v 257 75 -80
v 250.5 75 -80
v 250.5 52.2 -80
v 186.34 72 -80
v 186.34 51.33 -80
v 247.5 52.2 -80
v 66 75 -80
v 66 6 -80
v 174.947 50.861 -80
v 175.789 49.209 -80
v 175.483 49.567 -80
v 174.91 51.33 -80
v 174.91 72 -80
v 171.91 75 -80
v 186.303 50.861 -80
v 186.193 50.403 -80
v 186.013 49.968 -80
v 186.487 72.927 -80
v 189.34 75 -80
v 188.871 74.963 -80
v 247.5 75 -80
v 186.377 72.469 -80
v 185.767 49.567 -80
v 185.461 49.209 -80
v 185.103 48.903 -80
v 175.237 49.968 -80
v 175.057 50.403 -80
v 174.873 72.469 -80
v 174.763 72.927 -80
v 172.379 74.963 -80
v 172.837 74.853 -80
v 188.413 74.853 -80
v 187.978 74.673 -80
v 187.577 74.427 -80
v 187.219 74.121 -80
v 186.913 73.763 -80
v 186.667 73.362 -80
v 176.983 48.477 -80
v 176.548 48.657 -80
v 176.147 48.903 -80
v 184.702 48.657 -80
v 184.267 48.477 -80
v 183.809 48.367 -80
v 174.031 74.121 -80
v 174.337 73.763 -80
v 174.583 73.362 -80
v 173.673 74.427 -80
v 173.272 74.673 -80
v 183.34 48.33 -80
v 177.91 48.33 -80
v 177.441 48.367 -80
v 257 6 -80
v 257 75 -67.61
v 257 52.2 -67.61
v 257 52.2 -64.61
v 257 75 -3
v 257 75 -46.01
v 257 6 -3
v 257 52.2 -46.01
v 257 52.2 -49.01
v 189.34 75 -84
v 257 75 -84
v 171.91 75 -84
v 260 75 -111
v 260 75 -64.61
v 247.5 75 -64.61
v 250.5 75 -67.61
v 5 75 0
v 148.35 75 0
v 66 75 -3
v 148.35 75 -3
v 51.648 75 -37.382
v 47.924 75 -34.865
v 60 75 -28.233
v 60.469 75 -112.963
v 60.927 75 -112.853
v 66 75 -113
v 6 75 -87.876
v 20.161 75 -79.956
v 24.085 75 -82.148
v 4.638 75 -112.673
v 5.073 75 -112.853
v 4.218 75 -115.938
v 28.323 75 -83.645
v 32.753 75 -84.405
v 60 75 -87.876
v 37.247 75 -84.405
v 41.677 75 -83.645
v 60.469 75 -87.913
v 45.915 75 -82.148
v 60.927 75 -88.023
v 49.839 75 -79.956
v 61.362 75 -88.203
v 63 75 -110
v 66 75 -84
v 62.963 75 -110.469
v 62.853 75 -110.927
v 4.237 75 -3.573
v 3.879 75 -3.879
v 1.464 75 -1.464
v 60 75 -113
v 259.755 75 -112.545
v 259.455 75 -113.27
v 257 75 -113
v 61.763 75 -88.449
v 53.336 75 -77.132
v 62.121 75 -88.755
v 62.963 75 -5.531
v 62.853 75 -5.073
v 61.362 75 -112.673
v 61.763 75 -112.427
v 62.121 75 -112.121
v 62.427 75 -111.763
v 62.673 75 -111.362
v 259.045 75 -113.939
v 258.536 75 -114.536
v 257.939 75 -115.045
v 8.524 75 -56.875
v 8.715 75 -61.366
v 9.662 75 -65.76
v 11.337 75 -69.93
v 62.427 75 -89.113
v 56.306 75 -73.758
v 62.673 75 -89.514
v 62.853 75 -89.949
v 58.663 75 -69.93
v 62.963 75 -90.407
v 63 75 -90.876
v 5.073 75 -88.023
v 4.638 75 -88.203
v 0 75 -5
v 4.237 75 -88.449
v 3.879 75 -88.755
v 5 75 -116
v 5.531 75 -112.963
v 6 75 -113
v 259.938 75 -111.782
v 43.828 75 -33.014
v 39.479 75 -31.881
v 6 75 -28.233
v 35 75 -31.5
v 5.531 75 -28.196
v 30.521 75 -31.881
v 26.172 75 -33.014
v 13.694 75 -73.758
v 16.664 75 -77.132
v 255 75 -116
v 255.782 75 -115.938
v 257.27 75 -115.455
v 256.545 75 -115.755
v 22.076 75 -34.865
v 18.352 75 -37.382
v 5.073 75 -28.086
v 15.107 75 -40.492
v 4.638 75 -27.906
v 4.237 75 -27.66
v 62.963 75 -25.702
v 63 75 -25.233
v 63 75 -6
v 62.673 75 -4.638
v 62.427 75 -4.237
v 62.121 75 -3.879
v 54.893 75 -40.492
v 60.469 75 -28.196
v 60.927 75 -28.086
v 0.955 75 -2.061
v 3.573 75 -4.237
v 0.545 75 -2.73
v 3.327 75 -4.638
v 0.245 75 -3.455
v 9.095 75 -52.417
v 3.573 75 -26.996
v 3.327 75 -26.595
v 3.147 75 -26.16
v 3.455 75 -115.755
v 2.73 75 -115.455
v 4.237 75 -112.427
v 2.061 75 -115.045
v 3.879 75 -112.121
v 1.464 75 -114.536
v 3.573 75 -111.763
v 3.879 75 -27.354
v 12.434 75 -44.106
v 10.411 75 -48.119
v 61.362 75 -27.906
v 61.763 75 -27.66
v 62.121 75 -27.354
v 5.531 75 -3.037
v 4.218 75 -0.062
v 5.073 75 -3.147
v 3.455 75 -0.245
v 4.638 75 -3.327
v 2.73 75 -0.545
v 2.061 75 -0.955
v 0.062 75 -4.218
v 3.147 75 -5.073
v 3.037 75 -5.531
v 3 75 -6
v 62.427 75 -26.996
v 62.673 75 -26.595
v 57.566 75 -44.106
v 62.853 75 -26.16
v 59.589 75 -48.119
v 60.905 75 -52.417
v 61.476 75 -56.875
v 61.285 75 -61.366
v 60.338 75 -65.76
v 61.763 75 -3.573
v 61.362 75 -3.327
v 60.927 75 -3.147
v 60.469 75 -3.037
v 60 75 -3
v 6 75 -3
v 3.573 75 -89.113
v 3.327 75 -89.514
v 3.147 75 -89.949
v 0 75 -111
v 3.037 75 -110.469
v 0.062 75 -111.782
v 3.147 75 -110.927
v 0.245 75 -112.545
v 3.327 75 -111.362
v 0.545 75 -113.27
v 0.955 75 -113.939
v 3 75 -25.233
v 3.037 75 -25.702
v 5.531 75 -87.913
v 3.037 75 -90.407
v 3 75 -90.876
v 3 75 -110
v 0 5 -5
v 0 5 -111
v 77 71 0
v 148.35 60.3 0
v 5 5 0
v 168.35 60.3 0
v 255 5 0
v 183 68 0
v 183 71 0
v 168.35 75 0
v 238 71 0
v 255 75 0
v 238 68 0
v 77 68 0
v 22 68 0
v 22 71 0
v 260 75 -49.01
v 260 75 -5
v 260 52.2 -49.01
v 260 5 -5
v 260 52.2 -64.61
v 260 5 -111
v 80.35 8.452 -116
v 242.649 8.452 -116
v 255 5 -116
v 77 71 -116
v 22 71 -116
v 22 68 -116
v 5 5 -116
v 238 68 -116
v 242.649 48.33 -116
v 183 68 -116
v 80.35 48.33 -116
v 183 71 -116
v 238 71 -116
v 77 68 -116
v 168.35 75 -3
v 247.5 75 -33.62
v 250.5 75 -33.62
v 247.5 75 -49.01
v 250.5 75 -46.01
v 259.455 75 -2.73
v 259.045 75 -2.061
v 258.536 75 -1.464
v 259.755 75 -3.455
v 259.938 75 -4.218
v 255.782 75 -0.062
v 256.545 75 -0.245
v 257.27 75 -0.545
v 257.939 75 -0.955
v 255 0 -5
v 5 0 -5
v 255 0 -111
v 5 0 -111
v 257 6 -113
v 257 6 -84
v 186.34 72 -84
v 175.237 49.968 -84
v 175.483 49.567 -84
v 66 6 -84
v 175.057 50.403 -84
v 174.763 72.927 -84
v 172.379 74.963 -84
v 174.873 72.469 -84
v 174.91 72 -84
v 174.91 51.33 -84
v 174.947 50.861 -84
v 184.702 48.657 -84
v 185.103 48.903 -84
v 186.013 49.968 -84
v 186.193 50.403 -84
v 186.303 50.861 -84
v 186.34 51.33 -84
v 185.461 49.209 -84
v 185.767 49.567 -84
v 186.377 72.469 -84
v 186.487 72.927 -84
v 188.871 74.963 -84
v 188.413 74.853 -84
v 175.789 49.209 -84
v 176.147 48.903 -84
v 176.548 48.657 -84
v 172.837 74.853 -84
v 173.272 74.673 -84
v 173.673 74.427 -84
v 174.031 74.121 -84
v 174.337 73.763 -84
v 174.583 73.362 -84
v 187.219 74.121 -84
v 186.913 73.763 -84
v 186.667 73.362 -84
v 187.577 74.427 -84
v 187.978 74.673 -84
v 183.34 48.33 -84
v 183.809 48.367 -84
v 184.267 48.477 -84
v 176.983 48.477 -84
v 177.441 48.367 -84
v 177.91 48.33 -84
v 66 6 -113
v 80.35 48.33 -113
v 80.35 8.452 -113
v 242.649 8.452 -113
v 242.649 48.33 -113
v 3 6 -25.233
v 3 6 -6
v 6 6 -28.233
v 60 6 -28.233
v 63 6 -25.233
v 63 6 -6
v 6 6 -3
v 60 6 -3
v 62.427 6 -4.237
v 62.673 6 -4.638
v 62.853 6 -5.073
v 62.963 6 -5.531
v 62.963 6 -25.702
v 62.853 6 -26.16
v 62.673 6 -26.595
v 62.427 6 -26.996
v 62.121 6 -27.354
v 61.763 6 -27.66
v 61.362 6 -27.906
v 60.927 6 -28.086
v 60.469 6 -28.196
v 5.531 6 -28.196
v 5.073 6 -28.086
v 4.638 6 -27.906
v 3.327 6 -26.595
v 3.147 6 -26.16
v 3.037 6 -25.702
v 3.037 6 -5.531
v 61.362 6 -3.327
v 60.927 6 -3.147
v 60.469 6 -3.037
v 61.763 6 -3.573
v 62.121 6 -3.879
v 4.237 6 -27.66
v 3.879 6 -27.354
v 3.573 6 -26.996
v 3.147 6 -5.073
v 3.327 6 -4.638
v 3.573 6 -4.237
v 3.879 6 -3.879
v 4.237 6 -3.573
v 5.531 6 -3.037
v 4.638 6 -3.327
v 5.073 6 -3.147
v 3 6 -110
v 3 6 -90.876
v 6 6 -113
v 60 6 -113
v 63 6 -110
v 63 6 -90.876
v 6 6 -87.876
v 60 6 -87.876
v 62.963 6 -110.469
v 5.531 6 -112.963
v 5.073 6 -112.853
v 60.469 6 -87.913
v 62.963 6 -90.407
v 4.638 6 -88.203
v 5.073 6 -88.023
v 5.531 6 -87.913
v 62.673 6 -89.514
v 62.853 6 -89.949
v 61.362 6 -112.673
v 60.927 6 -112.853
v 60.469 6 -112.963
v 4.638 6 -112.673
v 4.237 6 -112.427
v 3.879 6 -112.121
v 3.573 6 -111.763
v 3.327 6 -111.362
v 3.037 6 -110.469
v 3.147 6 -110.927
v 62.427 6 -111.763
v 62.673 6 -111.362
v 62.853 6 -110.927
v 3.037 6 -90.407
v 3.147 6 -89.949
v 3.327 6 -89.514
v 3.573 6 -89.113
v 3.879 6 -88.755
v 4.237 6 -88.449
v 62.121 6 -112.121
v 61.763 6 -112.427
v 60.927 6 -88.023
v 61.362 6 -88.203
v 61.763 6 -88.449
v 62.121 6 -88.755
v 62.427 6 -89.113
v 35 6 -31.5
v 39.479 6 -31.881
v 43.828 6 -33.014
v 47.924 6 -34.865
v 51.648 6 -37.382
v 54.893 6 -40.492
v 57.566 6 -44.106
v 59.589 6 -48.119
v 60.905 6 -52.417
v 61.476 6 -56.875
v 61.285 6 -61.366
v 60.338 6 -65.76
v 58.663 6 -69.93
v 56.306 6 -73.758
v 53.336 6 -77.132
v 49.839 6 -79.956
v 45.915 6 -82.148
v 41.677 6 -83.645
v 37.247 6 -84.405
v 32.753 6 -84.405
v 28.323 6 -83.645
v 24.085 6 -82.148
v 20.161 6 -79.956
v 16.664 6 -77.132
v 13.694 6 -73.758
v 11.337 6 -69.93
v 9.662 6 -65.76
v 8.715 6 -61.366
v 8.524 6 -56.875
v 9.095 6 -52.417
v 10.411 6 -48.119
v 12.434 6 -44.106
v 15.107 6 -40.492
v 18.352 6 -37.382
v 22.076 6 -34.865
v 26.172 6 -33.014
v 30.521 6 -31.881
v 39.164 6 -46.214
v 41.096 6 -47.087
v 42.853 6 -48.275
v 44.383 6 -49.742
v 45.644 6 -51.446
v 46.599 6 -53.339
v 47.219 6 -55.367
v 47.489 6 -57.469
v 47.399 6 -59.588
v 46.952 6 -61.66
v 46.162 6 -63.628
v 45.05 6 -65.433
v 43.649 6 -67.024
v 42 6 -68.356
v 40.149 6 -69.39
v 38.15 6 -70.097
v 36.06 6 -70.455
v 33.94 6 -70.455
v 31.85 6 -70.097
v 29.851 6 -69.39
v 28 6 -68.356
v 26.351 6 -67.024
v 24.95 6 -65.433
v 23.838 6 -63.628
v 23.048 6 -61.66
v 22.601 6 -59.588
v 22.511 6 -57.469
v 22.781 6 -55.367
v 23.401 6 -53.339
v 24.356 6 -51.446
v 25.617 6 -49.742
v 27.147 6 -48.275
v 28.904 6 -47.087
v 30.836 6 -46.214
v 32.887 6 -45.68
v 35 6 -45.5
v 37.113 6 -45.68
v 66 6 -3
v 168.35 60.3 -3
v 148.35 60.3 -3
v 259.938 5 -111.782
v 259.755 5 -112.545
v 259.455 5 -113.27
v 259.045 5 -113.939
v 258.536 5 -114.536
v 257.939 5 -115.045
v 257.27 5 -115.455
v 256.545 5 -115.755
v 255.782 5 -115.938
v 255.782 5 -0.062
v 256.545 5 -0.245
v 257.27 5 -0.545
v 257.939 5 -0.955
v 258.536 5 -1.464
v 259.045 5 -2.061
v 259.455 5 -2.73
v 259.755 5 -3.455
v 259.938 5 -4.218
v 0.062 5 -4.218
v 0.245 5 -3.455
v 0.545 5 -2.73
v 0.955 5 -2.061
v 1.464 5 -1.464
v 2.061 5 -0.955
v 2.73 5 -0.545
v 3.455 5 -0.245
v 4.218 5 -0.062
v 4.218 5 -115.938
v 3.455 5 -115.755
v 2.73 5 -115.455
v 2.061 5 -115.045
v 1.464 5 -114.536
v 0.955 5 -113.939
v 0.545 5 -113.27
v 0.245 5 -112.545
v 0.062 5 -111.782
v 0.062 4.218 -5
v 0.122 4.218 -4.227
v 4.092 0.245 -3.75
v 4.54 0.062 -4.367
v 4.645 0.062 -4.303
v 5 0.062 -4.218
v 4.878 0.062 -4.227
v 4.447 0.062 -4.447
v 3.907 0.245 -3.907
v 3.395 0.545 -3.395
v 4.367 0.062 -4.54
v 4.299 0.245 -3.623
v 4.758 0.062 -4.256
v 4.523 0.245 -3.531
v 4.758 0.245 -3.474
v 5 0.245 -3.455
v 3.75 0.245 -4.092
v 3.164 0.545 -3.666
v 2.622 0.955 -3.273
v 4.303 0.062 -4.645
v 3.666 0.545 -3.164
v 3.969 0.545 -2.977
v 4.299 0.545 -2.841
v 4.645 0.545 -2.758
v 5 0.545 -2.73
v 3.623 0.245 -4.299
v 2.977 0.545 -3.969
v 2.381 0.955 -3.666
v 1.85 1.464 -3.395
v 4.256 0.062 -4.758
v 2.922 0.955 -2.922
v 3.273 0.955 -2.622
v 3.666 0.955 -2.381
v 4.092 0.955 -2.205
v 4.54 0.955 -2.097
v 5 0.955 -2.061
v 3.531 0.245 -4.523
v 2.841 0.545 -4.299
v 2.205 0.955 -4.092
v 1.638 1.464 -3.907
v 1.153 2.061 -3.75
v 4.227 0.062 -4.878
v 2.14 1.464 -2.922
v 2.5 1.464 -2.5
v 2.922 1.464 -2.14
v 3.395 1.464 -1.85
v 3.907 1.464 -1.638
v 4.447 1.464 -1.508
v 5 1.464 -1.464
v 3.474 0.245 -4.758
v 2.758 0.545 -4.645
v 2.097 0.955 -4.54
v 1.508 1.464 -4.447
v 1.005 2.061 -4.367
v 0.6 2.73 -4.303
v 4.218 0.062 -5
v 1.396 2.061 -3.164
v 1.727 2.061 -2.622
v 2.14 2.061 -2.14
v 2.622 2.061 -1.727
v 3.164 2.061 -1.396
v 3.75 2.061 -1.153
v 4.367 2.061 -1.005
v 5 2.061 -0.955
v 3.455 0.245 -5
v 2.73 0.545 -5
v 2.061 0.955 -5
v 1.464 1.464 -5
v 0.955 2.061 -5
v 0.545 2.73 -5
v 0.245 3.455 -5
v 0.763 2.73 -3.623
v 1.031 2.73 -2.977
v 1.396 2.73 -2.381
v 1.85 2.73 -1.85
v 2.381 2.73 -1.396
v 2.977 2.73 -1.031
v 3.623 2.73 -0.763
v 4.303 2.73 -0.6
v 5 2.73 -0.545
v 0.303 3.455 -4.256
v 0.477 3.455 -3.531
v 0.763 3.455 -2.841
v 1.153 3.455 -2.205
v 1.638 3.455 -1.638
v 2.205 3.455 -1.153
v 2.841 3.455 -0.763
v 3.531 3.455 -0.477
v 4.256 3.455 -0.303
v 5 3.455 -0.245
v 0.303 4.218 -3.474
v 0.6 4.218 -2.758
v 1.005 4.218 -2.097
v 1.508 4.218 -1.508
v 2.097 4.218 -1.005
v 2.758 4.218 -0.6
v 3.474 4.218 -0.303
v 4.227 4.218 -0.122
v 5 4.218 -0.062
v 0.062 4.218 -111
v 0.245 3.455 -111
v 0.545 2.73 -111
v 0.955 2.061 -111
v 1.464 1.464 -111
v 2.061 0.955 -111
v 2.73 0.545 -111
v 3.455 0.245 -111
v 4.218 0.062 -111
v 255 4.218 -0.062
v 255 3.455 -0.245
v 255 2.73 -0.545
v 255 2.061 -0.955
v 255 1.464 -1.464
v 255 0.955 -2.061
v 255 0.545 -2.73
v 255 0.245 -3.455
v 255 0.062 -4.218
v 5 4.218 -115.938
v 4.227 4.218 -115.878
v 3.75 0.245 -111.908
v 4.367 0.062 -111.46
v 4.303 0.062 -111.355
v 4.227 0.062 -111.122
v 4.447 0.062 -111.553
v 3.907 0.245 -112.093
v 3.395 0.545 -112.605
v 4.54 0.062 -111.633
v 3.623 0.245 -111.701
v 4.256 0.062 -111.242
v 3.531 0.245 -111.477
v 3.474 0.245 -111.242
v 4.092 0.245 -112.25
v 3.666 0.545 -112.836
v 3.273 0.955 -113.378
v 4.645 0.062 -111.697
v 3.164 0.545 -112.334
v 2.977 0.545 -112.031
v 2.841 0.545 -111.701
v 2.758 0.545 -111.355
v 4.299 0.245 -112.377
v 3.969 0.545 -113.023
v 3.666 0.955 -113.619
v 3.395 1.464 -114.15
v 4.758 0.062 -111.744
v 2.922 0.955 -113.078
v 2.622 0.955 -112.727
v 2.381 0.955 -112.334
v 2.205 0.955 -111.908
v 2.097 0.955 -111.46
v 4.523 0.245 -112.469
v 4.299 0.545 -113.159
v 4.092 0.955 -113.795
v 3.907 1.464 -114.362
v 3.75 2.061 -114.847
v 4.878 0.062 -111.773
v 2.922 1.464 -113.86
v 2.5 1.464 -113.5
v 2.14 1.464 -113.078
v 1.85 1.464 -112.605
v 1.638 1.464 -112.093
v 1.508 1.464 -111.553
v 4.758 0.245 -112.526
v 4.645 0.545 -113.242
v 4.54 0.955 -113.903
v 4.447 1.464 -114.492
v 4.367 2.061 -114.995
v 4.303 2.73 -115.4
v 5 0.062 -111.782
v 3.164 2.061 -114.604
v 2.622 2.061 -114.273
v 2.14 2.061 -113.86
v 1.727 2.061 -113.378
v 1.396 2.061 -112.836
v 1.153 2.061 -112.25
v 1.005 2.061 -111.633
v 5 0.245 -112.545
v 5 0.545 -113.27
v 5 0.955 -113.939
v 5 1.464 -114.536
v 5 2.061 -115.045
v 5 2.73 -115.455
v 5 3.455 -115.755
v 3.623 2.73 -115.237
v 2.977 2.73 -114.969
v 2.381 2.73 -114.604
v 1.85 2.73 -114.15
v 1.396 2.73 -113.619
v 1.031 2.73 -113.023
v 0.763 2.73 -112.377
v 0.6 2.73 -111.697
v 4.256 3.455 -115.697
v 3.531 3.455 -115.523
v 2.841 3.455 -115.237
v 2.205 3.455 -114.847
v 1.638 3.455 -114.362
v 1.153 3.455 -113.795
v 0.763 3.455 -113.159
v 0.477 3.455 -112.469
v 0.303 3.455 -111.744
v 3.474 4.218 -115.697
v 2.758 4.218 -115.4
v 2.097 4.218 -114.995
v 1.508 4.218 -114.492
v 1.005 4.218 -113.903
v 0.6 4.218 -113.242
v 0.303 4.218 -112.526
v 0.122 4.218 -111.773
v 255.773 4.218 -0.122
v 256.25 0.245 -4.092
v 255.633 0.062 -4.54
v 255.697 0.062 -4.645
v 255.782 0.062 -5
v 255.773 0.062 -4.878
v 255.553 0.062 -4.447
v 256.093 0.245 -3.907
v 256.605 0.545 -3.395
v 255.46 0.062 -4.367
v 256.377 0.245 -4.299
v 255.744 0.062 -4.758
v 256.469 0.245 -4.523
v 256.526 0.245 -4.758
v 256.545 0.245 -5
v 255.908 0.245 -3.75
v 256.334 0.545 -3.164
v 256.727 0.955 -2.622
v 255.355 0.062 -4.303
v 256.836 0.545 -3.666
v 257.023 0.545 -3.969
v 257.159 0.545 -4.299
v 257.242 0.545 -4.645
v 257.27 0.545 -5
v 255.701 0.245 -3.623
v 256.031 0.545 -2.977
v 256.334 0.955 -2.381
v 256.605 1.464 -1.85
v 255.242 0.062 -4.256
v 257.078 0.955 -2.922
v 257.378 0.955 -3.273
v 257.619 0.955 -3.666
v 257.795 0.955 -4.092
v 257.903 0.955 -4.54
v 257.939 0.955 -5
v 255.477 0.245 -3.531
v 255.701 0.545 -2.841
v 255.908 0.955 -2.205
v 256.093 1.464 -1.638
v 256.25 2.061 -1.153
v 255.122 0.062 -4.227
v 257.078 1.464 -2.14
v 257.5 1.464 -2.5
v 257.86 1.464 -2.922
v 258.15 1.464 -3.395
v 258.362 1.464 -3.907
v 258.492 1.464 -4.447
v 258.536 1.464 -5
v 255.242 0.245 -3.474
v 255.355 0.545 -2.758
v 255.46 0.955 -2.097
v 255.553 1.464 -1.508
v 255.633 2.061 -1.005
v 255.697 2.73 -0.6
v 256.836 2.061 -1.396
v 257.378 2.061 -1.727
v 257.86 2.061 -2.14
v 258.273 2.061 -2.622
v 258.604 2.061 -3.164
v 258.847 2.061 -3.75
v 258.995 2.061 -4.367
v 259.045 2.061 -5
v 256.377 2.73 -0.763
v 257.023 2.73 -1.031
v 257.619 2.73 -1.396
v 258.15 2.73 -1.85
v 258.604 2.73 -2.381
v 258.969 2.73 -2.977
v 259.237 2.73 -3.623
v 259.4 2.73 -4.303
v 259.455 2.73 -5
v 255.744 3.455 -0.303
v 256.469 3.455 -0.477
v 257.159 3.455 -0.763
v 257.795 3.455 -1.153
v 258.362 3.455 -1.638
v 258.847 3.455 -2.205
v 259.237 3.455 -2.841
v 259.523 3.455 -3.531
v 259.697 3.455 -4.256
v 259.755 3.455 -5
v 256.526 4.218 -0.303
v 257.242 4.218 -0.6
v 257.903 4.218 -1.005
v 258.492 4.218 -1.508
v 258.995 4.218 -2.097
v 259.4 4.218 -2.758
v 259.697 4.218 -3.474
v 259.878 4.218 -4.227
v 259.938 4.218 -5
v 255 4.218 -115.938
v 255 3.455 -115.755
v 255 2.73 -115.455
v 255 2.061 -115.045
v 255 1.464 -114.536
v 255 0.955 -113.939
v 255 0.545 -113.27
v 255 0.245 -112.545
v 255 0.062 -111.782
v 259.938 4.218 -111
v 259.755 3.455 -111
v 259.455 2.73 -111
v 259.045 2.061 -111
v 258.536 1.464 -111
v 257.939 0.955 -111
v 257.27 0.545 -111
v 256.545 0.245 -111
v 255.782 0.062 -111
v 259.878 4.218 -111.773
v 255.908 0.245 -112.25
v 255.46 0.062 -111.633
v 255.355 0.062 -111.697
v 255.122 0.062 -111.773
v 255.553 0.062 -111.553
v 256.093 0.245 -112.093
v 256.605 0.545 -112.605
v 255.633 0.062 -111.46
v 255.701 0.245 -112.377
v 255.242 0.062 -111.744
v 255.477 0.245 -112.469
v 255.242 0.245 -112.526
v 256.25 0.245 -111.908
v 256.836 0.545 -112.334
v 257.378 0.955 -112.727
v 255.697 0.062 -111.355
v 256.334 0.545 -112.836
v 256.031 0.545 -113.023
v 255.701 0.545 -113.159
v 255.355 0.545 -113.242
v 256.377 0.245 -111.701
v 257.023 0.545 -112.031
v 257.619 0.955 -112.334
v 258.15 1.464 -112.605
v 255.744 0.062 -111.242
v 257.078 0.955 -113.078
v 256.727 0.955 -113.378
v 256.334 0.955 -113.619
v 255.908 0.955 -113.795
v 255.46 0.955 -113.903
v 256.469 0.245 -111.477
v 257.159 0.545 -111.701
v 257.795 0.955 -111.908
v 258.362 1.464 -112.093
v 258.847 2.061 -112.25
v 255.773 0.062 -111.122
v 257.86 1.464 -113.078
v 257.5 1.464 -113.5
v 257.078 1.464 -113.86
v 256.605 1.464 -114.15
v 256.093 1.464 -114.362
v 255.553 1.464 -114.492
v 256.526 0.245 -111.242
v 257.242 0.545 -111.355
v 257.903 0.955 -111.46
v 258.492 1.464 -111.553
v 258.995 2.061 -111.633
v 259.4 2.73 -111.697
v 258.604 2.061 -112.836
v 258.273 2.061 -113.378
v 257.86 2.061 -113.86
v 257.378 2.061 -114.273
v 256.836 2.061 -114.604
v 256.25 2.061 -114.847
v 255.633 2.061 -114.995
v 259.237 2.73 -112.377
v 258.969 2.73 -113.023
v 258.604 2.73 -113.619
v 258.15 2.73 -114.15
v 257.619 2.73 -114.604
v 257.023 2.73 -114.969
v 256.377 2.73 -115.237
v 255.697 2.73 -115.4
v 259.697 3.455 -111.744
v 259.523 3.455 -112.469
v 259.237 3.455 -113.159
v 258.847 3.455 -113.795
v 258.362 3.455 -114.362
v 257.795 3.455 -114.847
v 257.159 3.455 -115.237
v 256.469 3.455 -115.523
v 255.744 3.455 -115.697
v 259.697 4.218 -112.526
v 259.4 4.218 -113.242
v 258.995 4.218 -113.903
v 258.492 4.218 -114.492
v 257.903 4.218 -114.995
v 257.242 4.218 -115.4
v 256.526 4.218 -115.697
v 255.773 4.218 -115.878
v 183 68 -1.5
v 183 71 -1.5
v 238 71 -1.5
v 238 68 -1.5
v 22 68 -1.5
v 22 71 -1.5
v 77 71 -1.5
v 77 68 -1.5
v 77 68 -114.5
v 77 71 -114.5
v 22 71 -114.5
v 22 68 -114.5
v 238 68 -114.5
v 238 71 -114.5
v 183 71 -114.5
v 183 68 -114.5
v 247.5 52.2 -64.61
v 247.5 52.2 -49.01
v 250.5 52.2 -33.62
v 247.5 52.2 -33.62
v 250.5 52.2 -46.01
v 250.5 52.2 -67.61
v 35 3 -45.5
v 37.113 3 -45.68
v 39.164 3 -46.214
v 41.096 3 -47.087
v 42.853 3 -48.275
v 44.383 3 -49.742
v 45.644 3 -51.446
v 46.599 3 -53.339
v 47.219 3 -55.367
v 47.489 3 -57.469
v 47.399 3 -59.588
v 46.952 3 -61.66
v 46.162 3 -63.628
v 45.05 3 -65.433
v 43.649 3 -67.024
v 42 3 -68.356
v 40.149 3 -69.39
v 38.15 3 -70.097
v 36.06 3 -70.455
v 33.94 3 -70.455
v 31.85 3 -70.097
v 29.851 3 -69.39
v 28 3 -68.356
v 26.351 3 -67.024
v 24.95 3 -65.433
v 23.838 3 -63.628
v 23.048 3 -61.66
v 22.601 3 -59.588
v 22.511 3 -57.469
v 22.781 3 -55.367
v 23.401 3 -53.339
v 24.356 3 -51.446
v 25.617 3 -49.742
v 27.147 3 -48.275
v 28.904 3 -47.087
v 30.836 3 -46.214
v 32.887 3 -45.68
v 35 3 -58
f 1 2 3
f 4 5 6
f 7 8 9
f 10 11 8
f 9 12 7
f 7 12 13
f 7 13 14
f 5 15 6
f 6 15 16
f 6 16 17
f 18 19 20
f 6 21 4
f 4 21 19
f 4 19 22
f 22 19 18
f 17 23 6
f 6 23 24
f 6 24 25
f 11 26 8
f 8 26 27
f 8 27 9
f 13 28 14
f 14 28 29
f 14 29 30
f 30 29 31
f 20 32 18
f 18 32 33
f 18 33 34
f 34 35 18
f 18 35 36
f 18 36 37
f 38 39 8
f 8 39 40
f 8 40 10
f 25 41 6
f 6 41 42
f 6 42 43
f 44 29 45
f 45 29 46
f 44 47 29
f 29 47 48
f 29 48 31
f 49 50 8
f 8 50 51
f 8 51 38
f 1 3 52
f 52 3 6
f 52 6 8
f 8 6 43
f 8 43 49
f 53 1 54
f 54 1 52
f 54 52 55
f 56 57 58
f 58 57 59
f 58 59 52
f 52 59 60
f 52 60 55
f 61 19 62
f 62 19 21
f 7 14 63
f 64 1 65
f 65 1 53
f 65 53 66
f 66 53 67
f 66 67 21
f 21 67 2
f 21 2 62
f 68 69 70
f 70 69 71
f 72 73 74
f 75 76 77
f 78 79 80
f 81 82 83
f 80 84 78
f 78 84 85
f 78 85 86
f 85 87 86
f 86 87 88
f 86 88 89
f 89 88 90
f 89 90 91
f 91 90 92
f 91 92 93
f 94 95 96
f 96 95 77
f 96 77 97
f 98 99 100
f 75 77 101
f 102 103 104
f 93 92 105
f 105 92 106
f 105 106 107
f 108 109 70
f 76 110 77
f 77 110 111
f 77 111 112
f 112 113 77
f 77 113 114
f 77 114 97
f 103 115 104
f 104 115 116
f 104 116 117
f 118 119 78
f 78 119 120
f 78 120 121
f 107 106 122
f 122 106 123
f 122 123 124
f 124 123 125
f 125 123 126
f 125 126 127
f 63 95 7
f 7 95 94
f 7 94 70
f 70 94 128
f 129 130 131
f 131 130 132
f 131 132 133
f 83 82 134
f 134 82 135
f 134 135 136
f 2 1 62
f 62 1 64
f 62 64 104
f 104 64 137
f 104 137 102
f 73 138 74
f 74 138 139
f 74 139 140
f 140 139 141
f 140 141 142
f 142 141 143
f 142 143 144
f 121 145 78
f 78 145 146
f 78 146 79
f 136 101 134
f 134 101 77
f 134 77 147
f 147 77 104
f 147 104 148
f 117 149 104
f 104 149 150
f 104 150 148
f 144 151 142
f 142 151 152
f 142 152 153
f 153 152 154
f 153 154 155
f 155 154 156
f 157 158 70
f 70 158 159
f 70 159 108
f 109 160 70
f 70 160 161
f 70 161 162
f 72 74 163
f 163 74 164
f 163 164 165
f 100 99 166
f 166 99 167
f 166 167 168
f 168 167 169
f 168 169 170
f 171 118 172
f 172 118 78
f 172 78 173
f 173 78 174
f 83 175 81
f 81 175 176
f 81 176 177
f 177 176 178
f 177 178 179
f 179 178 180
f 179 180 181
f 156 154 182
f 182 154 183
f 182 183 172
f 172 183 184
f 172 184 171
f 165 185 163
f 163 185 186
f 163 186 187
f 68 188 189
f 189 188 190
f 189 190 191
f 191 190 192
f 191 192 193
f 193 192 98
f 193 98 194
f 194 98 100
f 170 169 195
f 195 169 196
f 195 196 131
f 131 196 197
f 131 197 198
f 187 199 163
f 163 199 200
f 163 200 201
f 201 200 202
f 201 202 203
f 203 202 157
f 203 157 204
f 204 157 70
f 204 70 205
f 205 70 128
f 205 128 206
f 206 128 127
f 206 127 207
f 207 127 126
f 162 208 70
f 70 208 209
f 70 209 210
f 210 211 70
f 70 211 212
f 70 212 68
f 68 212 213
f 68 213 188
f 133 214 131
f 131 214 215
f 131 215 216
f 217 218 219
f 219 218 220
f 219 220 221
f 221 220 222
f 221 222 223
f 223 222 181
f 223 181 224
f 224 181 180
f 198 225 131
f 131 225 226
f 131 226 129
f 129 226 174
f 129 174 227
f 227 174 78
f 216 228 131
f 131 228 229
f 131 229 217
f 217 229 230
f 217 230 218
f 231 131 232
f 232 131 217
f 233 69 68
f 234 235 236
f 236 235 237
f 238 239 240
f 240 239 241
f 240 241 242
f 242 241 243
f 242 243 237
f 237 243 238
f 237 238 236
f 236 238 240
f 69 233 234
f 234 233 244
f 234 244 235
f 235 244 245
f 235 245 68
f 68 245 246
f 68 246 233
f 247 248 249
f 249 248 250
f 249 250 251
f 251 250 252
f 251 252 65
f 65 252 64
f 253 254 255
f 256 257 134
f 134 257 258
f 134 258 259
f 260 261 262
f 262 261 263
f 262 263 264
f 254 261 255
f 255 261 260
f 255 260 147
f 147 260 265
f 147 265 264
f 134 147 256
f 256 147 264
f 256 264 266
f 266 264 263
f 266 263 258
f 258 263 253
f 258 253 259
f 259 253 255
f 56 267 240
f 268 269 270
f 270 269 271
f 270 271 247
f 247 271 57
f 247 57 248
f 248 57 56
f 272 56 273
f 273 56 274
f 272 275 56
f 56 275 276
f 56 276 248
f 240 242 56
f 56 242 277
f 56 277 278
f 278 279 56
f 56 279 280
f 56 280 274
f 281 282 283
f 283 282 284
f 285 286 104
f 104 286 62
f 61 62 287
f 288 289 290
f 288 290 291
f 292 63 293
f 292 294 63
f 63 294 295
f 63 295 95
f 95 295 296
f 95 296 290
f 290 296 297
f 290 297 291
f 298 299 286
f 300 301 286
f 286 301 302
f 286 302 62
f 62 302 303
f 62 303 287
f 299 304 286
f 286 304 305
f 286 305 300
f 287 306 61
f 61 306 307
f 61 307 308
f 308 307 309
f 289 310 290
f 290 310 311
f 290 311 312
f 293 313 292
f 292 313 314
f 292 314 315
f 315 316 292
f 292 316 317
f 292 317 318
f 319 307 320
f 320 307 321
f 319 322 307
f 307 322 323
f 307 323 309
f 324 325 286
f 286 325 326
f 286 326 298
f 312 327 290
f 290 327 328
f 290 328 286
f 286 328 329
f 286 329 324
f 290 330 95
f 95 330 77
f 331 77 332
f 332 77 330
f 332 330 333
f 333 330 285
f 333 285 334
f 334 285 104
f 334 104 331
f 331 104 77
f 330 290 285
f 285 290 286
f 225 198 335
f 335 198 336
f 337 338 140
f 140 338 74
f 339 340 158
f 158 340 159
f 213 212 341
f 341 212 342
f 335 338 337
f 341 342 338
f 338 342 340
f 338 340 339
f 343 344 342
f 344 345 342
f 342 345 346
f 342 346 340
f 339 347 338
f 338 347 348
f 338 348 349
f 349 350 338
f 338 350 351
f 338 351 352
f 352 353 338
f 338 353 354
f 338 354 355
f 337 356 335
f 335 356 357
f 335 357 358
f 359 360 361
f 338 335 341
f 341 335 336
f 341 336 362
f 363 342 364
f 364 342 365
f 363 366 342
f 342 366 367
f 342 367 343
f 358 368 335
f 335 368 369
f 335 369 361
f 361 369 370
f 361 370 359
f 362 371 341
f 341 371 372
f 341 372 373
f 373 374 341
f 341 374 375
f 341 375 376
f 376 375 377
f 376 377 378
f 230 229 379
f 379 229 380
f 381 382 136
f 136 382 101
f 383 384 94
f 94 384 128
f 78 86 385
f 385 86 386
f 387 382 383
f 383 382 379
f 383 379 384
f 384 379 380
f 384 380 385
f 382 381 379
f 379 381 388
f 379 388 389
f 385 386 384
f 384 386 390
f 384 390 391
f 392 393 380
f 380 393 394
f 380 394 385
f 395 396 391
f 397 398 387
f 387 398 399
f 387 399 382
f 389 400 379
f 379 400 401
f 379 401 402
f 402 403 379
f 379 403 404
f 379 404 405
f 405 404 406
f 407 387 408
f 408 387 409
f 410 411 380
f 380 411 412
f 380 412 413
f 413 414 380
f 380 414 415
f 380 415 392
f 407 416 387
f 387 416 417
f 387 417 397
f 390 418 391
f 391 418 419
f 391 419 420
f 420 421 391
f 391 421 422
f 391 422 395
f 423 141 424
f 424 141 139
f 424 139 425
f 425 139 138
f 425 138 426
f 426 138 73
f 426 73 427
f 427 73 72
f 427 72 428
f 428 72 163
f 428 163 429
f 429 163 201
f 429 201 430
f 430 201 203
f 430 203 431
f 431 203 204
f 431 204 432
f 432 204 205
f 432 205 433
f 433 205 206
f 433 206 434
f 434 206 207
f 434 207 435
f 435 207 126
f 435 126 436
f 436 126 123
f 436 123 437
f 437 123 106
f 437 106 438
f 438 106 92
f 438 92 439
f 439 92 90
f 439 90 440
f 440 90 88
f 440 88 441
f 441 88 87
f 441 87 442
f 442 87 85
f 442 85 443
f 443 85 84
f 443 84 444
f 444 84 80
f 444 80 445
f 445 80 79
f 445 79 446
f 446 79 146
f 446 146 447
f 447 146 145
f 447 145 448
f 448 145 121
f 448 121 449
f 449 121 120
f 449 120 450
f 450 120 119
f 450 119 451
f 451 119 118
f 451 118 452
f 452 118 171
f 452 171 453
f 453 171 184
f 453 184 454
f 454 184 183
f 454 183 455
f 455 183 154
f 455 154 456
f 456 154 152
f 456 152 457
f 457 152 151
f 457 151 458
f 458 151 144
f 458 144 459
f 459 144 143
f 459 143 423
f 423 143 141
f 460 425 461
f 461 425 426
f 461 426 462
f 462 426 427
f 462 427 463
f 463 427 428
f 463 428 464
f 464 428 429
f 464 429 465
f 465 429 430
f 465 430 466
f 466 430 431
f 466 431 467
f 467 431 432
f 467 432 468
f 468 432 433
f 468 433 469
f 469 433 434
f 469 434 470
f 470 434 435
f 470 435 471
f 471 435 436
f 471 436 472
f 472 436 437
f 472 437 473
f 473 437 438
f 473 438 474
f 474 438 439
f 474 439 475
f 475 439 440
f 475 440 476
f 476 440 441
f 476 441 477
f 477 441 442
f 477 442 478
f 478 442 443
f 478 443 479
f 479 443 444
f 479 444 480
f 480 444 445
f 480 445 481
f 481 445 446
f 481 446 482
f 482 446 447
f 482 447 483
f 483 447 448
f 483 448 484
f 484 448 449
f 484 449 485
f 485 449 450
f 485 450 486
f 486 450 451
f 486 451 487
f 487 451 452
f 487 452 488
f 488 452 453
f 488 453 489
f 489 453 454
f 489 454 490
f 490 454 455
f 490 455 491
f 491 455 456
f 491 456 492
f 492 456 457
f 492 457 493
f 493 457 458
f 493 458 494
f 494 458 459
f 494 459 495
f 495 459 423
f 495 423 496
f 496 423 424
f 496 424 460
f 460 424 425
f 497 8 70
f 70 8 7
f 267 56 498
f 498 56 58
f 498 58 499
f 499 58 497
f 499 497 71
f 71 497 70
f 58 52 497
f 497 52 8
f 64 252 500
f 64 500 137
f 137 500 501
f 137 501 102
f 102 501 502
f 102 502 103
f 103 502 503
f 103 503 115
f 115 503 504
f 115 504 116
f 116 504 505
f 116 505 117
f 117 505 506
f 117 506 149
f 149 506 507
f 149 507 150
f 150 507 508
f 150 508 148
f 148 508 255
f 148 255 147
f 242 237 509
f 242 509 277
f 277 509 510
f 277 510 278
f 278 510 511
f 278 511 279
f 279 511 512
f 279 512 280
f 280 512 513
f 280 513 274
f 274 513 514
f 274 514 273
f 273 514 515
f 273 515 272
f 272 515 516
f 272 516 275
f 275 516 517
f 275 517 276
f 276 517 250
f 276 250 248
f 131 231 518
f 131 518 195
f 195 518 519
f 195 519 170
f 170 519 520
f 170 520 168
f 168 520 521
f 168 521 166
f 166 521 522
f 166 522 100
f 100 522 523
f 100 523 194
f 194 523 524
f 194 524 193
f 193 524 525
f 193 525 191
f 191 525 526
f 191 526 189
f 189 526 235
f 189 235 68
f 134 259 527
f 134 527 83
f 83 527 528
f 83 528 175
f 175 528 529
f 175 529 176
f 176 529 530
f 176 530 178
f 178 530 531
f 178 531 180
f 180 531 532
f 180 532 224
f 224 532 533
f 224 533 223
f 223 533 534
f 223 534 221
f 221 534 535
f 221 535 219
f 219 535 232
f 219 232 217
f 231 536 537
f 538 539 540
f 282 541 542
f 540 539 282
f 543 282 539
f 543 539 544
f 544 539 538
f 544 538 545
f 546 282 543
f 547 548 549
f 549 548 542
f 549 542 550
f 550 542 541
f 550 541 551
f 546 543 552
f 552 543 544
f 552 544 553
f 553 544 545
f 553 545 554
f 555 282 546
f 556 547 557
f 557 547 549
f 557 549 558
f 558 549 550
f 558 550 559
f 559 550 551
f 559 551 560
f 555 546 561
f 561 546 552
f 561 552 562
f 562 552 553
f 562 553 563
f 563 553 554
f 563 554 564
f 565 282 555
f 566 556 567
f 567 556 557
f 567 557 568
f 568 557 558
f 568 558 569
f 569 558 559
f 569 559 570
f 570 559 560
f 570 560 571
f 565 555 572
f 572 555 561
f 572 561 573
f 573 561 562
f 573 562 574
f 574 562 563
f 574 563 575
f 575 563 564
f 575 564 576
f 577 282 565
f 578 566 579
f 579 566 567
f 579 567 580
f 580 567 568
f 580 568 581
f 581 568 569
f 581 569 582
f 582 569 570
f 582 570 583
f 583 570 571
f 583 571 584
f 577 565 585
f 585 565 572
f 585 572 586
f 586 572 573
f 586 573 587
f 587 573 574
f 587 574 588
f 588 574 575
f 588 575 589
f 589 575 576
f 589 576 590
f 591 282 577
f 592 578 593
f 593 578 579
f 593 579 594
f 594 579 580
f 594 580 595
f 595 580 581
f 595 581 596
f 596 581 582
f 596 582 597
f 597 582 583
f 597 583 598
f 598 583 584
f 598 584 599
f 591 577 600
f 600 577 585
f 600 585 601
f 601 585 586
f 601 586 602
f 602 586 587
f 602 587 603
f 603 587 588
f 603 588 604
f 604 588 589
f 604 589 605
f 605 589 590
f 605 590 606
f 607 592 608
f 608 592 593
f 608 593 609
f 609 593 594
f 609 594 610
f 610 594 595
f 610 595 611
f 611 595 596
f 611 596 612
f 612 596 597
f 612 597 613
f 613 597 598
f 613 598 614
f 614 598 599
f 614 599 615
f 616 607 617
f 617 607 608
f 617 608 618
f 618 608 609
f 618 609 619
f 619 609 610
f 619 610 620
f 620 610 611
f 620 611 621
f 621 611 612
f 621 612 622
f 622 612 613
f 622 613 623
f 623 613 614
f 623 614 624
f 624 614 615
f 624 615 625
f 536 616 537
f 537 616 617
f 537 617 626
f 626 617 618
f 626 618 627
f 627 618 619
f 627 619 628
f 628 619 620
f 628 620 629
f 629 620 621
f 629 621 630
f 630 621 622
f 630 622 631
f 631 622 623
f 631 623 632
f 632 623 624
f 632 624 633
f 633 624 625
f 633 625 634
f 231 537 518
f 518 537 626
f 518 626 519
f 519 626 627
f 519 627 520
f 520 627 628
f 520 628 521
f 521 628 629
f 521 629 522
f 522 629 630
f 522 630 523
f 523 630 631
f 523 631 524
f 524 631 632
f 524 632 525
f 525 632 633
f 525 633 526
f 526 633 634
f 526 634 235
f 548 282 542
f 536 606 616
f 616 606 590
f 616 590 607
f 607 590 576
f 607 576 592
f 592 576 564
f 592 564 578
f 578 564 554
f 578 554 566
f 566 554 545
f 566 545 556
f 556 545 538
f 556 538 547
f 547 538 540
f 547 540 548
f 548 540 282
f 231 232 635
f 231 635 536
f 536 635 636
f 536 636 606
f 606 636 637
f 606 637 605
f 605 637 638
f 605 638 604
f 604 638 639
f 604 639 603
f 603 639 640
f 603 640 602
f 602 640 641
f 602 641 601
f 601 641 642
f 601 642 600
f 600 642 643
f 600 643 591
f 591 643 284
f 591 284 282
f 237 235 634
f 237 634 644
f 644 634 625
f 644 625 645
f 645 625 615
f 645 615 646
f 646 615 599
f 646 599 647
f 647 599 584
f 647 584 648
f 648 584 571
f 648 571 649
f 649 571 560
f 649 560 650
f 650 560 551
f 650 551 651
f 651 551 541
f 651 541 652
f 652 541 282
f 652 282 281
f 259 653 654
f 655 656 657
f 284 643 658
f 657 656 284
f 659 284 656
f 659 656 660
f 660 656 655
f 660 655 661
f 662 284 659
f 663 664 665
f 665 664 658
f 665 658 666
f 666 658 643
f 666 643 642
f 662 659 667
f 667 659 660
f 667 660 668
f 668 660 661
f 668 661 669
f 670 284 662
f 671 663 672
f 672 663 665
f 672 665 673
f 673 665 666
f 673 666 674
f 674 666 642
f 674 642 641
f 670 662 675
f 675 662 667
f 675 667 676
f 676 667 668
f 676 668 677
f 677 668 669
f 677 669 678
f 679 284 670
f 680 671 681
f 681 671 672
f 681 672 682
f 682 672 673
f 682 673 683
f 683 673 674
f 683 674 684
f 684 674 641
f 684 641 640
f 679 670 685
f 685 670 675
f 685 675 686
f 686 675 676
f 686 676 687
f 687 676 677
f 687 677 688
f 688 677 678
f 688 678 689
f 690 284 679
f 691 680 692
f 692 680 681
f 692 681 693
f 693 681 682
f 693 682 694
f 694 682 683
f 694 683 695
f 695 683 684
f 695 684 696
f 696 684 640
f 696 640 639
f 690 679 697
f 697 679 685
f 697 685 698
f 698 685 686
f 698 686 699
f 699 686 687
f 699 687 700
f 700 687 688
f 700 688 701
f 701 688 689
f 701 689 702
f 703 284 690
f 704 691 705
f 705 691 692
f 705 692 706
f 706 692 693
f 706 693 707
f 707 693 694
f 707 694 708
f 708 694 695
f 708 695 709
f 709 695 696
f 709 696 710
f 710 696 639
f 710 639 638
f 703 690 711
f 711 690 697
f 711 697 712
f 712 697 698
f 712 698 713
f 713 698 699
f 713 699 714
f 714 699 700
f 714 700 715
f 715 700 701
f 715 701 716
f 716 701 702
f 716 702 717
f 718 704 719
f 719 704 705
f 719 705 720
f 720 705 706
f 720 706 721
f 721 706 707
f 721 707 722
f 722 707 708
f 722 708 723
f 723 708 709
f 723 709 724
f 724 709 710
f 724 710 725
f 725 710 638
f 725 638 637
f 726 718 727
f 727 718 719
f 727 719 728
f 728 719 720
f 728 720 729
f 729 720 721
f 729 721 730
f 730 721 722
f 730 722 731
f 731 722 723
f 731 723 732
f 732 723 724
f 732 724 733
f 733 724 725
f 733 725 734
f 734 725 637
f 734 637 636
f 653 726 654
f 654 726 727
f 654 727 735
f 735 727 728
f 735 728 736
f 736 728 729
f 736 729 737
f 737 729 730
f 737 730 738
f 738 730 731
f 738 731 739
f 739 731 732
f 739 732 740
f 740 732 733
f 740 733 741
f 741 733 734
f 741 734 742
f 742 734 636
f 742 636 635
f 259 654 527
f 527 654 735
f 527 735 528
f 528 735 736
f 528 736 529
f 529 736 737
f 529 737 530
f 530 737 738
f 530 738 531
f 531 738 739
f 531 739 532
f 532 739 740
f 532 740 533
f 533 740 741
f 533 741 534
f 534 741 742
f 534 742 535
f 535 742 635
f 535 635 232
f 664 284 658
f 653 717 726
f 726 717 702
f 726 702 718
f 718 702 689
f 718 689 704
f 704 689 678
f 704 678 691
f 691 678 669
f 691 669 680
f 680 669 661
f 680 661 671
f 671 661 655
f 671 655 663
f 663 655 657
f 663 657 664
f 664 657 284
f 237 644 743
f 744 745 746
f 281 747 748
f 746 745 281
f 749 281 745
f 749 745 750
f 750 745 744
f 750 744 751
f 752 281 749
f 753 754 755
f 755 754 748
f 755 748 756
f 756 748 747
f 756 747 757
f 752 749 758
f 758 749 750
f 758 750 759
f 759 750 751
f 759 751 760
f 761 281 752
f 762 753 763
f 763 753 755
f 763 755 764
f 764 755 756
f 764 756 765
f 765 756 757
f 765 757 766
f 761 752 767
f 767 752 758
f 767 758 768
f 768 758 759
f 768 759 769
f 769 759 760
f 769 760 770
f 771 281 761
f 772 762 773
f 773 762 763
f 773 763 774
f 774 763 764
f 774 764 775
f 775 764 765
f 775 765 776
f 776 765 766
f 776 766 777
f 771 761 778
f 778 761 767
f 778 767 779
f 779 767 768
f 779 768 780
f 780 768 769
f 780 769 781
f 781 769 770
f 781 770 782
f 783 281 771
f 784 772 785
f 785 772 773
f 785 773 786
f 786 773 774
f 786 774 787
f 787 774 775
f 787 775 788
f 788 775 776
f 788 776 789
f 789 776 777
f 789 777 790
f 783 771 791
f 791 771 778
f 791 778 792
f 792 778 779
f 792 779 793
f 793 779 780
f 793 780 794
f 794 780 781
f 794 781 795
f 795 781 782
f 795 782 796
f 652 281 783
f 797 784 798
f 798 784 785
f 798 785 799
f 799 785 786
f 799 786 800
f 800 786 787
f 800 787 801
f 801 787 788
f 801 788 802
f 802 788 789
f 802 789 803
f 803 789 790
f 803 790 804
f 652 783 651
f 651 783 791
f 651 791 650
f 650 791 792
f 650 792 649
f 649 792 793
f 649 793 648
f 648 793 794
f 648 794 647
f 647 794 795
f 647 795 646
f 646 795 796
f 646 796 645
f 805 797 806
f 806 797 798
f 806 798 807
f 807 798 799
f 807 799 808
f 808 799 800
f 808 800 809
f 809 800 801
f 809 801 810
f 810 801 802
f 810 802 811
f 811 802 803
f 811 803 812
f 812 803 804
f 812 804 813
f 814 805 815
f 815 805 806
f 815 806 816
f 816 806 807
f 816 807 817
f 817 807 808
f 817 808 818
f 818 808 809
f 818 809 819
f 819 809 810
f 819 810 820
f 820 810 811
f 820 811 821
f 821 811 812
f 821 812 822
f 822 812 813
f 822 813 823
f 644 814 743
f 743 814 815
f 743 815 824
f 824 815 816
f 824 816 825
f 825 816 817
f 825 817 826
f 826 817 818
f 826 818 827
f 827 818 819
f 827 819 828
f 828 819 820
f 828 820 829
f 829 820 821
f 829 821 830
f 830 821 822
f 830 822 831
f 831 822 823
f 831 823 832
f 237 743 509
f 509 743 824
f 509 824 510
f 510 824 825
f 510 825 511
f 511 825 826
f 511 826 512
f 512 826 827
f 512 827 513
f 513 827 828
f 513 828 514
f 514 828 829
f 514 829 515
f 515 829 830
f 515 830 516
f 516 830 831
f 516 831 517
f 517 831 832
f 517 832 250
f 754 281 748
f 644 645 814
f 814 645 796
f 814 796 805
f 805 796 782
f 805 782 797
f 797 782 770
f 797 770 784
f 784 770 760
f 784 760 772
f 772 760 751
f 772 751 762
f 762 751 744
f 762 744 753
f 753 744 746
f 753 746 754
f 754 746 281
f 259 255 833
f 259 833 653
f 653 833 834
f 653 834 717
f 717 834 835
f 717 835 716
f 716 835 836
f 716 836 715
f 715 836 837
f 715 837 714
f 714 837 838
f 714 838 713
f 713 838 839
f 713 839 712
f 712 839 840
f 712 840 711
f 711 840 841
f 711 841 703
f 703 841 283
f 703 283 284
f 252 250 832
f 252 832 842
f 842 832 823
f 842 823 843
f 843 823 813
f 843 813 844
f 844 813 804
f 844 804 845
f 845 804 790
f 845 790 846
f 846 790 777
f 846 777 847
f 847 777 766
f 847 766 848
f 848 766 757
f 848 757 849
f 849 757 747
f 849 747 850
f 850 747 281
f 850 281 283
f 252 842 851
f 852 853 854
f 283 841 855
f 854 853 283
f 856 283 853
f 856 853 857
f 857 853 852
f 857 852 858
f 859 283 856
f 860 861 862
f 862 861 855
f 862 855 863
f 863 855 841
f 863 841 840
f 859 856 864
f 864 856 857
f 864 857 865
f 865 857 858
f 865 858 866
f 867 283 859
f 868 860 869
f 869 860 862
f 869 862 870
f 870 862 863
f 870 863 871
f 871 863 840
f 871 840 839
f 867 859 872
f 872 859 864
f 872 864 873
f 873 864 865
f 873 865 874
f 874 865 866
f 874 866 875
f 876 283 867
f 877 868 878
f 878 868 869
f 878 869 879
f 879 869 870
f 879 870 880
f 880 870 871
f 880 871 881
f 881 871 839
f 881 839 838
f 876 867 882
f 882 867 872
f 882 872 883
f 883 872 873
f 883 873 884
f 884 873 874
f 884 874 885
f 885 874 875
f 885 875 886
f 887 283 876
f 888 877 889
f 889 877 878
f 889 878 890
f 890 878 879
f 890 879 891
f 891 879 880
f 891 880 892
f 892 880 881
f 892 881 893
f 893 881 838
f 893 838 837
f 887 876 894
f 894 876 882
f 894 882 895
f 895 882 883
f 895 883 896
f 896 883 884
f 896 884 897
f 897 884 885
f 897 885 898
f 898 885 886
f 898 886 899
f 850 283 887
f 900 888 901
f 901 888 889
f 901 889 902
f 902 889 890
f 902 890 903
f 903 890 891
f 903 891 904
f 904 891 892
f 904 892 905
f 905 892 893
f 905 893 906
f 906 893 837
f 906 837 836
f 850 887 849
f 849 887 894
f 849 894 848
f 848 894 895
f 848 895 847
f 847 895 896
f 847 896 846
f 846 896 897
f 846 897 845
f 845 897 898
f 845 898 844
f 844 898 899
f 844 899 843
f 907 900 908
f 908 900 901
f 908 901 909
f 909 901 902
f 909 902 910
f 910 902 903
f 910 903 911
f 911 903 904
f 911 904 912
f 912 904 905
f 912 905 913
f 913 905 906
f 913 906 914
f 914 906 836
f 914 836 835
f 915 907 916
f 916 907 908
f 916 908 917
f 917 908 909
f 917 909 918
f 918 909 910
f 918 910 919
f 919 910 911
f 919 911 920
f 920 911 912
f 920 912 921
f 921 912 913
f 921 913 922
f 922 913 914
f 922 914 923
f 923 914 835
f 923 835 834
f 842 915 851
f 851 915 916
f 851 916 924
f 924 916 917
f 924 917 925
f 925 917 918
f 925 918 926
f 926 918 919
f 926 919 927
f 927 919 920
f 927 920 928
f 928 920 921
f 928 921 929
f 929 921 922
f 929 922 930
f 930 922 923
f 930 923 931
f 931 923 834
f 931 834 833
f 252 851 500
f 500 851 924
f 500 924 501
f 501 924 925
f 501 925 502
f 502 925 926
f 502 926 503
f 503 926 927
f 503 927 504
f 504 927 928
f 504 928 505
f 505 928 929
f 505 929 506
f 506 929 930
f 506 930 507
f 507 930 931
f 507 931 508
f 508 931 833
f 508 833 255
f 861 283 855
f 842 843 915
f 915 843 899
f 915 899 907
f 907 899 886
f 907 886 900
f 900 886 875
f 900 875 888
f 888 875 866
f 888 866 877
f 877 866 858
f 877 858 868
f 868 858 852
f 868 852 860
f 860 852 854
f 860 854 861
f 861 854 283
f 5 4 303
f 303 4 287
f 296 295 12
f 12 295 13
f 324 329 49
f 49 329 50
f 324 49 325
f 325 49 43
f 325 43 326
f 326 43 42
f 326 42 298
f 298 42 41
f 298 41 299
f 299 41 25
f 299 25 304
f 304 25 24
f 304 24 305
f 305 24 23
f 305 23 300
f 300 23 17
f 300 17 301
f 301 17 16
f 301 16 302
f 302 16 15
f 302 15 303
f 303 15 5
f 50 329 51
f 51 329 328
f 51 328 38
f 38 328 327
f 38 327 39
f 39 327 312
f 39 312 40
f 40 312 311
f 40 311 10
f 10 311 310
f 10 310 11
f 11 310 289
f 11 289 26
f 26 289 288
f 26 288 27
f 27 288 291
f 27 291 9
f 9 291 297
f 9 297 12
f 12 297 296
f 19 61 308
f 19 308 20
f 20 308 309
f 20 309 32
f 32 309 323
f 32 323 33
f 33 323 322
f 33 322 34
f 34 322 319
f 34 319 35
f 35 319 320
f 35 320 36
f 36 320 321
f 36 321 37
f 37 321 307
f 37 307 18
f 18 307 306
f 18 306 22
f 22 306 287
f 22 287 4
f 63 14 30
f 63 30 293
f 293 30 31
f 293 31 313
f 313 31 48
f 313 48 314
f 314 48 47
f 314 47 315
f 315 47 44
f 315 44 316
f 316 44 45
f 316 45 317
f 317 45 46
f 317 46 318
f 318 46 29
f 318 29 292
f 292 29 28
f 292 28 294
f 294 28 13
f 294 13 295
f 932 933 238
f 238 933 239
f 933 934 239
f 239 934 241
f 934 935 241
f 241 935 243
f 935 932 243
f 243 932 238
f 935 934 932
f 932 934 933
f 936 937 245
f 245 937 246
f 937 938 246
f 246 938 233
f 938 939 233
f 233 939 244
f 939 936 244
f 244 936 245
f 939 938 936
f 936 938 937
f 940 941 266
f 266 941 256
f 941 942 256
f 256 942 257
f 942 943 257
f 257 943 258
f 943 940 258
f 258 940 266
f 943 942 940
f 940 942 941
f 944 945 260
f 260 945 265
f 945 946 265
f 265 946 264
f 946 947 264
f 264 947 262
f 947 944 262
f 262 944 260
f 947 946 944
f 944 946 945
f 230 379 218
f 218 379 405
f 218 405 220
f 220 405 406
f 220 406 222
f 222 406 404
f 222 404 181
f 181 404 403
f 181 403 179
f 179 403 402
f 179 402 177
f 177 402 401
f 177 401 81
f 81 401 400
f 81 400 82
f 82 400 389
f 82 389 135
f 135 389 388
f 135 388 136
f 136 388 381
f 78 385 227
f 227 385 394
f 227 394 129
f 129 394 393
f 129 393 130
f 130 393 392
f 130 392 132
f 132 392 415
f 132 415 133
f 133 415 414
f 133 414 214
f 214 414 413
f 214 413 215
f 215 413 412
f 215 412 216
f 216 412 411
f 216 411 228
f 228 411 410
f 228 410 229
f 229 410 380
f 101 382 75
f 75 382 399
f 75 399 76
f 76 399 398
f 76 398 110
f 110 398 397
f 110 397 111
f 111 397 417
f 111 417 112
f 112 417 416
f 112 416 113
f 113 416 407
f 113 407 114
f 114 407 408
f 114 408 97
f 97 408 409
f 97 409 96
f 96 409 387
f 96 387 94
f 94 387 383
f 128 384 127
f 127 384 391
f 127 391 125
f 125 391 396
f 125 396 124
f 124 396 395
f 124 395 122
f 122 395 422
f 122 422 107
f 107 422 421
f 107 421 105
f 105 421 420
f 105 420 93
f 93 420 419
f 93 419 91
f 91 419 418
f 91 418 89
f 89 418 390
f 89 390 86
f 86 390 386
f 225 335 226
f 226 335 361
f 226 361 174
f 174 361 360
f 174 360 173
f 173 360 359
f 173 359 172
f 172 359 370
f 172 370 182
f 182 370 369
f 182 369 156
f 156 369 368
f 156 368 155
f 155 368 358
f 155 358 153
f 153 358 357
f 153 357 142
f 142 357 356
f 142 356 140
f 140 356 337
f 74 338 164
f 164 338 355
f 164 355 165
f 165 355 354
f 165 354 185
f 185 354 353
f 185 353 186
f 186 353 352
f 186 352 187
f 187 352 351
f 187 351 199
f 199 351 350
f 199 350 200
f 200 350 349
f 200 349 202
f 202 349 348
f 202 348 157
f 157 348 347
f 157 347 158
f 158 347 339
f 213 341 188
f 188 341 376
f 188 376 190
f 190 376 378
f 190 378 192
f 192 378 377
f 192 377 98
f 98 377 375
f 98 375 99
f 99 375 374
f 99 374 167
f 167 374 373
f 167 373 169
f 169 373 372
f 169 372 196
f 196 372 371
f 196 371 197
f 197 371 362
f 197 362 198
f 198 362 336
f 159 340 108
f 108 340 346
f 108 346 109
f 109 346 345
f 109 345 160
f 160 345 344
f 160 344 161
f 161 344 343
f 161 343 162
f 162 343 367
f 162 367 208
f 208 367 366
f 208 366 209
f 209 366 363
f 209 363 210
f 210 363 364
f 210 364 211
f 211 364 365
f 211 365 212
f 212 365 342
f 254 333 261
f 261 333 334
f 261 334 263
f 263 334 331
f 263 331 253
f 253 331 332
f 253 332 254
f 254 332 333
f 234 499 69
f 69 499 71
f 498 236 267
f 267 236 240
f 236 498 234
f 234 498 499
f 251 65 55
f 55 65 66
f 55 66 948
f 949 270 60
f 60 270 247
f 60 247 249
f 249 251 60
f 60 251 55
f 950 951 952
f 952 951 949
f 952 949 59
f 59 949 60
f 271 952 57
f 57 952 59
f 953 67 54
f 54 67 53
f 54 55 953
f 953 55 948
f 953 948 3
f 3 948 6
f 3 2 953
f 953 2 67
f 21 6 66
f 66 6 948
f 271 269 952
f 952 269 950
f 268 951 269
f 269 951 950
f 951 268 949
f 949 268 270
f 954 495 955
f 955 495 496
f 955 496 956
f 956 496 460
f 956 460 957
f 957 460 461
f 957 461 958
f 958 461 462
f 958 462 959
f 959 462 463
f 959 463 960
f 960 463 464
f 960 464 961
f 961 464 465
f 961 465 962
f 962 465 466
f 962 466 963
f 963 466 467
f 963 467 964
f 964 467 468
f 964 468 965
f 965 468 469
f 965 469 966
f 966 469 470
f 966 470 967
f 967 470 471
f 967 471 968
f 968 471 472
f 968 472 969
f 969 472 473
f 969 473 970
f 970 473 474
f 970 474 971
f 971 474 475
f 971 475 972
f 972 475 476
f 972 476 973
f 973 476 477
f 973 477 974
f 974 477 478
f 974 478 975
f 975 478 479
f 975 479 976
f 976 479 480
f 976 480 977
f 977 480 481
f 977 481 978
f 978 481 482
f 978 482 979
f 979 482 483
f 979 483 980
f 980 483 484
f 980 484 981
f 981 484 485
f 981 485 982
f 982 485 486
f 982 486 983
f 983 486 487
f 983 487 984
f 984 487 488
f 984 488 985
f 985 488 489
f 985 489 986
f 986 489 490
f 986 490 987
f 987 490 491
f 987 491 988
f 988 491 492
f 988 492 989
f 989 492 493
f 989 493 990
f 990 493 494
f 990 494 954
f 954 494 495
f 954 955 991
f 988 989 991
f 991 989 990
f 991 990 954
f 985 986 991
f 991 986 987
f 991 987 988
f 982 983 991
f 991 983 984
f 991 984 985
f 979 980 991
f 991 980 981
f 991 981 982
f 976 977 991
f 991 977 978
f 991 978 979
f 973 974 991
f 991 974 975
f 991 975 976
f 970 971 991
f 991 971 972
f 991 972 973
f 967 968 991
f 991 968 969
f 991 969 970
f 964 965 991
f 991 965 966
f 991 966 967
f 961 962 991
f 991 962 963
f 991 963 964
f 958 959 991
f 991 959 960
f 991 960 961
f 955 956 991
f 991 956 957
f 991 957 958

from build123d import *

# Parameters (mm, degrees)
SKETCH1_W           = 260
SKETCH1_H           = 116
BOSS_EXTRUDE1_DEPTH = 75
SKETCH2_R           = 26.5
SKETCH2_W           = 191
SKETCH2_H           = 29
SKETCH2_H_2         = 77
SKETCH2_W_2         = 60
SKETCH2_H_3         = 25.123653406
SKETCH2_H_4         = 25.23272894
CUT_EXTRUDE1_DEPTH  = 69
FILLET1_R           = 5
FILLET2_R           = 5
SKETCH4_W           = 11.43
SKETCH4_H           = 4
CUT_EXTRUDE3_DEPTH  = 26.67
FILLET3_R           = 3
SKETCH5_W           = 55
SKETCH5_H           = 3
CUT_EXTRUDE4_DEPTH  = 1.5
SKETCH6_W           = 55
SKETCH6_H           = 3
CUT_EXTRUDE5_DEPTH  = 1.5
FILLET4_R           = 3
SKETCH7_W           = 162.299
SKETCH7_H           = 39.878
CUT_EXTRUDE6_DEPTH  = 10
SKETCH9_W           = 20
SKETCH9_H           = 3
CUT_EXTRUDE7_DEPTH  = 14.7
SKETCH10_W          = 3
SKETCH10_H          = 15.6
CUT_EXTRUDE8_DEPTH  = 22.8
SKETCH11_W          = 3
SKETCH11_H          = 22.8
BOSS_EXTRUDE2_DEPTH = 6.5
SKETCH12_W          = 15.39
SKETCH12_H          = 22.8
BOSS_EXTRUDE3_DEPTH = 3
SKETCH13_R          = 12.5
CUT_EXTRUDE9_DEPTH  = 3


with BuildPart() as part:
    # Sketch1 → Boss-Extrude1 (new body)
    with BuildSketch(Plane(origin=(0, 0, 0), x_dir=(1, 0, 0), z_dir=(0, 1, 0))):
        with Locations((130, 58)):
            Rectangle(SKETCH1_W, SKETCH1_H)
    extrude(amount=BOSS_EXTRUDE1_DEPTH)

    # Sketch2 → Cut-Extrude1 (cut)
    with BuildSketch(Plane(origin=(0, 75, 0), x_dir=(1, 0, 0), z_dir=(0, 1, 0))):
        with Locations((35, 58)):
            Circle(SKETCH2_R)
        with Locations((161.5, 98.5)):
            Rectangle(SKETCH2_W, SKETCH2_H)
        with Locations((161.5, 41.5)):
            Rectangle(SKETCH2_W, SKETCH2_H_2)
        with Locations((33, 100.438173297)):
            Rectangle(SKETCH2_W_2, SKETCH2_H_3)
        with Locations((33, 15.61636447)):
            Rectangle(SKETCH2_W_2, SKETCH2_H_4)
    extrude(amount=-CUT_EXTRUDE1_DEPTH, mode=Mode.SUBTRACT)

    # Fillet1
    fillet1_edges = [part.edges().sort_by_distance(p)[0] for p in [
        (0, 37.5, -116),
        (260, 37.5, -116),
        (260, 37.5, 0),
        (0, 37.5, 0),
    ]]
    fillet(fillet1_edges, radius=FILLET1_R)

    # Fillet2
    fillet2_edges = [part.edges().sort_by_distance(p)[0] for p in [
        (130, 0, -116),
        (0, 0, -58),
        (260, 0, -58),
        (130, 0, 0),
        (1.464466094, 0, -114.535533906),
        (1.464466094, 0, -1.464466094),
        (258.535533906, 0, -1.464466094),
        (258.535533906, 0, -114.535533906),
    ]]
    fillet(fillet2_edges, radius=FILLET2_R)

    # Sketch4 → Cut-Extrude3 (cut)
    with BuildSketch(Plane(origin=(0, 75, 0), x_dir=(1, 0, 0), z_dir=(0, 1, 0))):
        with Locations((180.625, 82)):
            Rectangle(SKETCH4_W, SKETCH4_H)
    extrude(amount=-CUT_EXTRUDE3_DEPTH, mode=Mode.SUBTRACT)

    # Fillet3
    fillet3_edges = [part.edges().sort_by_distance(p)[0] for p in [
        (186.34, 48.33, -82),
        (174.91, 48.33, -82),
        (186.34, 75, -82),
        (174.91, 75, -82),
    ]]
    fillet(fillet3_edges, radius=FILLET3_R)

    # Sketch5 → Cut-Extrude4 (cut)
    with BuildSketch(Plane.XY):
        with Locations((49.5, 69.5)):
            Rectangle(SKETCH5_W, SKETCH5_H)
        with Locations((210.5, 69.5)):
            Rectangle(SKETCH5_W, SKETCH5_H)
    extrude(amount=-CUT_EXTRUDE4_DEPTH, mode=Mode.SUBTRACT)

    # Sketch6 → Cut-Extrude5 (cut)
    with BuildSketch(Plane(origin=(0, 0, -116), x_dir=(-1, 0, 0), z_dir=(0, 0, -1))):
        with Locations((-210.5, 69.5)):
            Rectangle(SKETCH6_W, SKETCH6_H)
        with Locations((-49.5, 69.5)):
            Rectangle(SKETCH6_W, SKETCH6_H)
    extrude(amount=-CUT_EXTRUDE5_DEPTH, mode=Mode.SUBTRACT)

    # Fillet4
    fillet4_edges = [part.edges().sort_by_distance(p)[0] for p in [
        (3, 40.5, -87.876346594),
        (3, 40.5, -113),
        (63, 40.5, -113),
        (63, 40.5, -87.876346594),
        (3, 40.5, -3),
        (3, 40.5, -28.23272894),
        (63, 40.5, -28.23272894),
        (63, 40.5, -3),
    ]]
    fillet(fillet4_edges, radius=FILLET4_R)

    # Sketch7 → Cut-Extrude6 (cut)
    with BuildSketch(Plane(origin=(0, 0, -116), x_dir=(-1, 0, 0), z_dir=(0, 0, -1))):
        with Locations((-161.4995, 28.391)):
            Rectangle(SKETCH7_W, SKETCH7_H)
    extrude(amount=-CUT_EXTRUDE6_DEPTH, mode=Mode.SUBTRACT)

    # Sketch9 → Cut-Extrude7 (cut)
    with BuildSketch(Plane(origin=(0, 75, 0), x_dir=(1, 0, 0), z_dir=(0, 1, 0))):
        with Locations((158.35, 1.5)):
            Rectangle(SKETCH9_W, SKETCH9_H)
    extrude(amount=-CUT_EXTRUDE7_DEPTH, mode=Mode.SUBTRACT)

    # Sketch10 → Cut-Extrude8 (cut)
    with BuildSketch(Plane(origin=(0, 75, 0), x_dir=(1, 0, 0), z_dir=(0, 1, 0))):
        with Locations((258.5, 56.81)):
            Rectangle(SKETCH10_W, SKETCH10_H)
    extrude(amount=-CUT_EXTRUDE8_DEPTH, mode=Mode.SUBTRACT)

    # Sketch11 → Boss-Extrude2 (add)
    with BuildSketch(Plane.ZY.offset(-257)):
        with Locations((-47.51, 63.6)):
            Rectangle(SKETCH11_W, SKETCH11_H)
        with Locations((-66.11, 63.6)):
            Rectangle(SKETCH11_W, SKETCH11_H)
    extrude(amount=BOSS_EXTRUDE2_DEPTH)

    # Sketch12 → Boss-Extrude3 (add)
    with BuildSketch(Plane.ZY.offset(-250.5)):
        with Locations((-72.305, 63.6)):
            Rectangle(SKETCH12_W, SKETCH12_H)
        with Locations((-41.315, 63.6)):
            Rectangle(SKETCH12_W, SKETCH12_H)
    extrude(amount=BOSS_EXTRUDE3_DEPTH)

    # Sketch13 → Cut-Extrude9 (cut)
    with BuildSketch(Plane(origin=(0, 6, 0), x_dir=(1, 0, 0), z_dir=(0, 1, 0))):
        with Locations((35, 58)):
            Circle(SKETCH13_R)
    extrude(amount=-CUT_EXTRUDE9_DEPTH, mode=Mode.SUBTRACT)


solid = part.part
